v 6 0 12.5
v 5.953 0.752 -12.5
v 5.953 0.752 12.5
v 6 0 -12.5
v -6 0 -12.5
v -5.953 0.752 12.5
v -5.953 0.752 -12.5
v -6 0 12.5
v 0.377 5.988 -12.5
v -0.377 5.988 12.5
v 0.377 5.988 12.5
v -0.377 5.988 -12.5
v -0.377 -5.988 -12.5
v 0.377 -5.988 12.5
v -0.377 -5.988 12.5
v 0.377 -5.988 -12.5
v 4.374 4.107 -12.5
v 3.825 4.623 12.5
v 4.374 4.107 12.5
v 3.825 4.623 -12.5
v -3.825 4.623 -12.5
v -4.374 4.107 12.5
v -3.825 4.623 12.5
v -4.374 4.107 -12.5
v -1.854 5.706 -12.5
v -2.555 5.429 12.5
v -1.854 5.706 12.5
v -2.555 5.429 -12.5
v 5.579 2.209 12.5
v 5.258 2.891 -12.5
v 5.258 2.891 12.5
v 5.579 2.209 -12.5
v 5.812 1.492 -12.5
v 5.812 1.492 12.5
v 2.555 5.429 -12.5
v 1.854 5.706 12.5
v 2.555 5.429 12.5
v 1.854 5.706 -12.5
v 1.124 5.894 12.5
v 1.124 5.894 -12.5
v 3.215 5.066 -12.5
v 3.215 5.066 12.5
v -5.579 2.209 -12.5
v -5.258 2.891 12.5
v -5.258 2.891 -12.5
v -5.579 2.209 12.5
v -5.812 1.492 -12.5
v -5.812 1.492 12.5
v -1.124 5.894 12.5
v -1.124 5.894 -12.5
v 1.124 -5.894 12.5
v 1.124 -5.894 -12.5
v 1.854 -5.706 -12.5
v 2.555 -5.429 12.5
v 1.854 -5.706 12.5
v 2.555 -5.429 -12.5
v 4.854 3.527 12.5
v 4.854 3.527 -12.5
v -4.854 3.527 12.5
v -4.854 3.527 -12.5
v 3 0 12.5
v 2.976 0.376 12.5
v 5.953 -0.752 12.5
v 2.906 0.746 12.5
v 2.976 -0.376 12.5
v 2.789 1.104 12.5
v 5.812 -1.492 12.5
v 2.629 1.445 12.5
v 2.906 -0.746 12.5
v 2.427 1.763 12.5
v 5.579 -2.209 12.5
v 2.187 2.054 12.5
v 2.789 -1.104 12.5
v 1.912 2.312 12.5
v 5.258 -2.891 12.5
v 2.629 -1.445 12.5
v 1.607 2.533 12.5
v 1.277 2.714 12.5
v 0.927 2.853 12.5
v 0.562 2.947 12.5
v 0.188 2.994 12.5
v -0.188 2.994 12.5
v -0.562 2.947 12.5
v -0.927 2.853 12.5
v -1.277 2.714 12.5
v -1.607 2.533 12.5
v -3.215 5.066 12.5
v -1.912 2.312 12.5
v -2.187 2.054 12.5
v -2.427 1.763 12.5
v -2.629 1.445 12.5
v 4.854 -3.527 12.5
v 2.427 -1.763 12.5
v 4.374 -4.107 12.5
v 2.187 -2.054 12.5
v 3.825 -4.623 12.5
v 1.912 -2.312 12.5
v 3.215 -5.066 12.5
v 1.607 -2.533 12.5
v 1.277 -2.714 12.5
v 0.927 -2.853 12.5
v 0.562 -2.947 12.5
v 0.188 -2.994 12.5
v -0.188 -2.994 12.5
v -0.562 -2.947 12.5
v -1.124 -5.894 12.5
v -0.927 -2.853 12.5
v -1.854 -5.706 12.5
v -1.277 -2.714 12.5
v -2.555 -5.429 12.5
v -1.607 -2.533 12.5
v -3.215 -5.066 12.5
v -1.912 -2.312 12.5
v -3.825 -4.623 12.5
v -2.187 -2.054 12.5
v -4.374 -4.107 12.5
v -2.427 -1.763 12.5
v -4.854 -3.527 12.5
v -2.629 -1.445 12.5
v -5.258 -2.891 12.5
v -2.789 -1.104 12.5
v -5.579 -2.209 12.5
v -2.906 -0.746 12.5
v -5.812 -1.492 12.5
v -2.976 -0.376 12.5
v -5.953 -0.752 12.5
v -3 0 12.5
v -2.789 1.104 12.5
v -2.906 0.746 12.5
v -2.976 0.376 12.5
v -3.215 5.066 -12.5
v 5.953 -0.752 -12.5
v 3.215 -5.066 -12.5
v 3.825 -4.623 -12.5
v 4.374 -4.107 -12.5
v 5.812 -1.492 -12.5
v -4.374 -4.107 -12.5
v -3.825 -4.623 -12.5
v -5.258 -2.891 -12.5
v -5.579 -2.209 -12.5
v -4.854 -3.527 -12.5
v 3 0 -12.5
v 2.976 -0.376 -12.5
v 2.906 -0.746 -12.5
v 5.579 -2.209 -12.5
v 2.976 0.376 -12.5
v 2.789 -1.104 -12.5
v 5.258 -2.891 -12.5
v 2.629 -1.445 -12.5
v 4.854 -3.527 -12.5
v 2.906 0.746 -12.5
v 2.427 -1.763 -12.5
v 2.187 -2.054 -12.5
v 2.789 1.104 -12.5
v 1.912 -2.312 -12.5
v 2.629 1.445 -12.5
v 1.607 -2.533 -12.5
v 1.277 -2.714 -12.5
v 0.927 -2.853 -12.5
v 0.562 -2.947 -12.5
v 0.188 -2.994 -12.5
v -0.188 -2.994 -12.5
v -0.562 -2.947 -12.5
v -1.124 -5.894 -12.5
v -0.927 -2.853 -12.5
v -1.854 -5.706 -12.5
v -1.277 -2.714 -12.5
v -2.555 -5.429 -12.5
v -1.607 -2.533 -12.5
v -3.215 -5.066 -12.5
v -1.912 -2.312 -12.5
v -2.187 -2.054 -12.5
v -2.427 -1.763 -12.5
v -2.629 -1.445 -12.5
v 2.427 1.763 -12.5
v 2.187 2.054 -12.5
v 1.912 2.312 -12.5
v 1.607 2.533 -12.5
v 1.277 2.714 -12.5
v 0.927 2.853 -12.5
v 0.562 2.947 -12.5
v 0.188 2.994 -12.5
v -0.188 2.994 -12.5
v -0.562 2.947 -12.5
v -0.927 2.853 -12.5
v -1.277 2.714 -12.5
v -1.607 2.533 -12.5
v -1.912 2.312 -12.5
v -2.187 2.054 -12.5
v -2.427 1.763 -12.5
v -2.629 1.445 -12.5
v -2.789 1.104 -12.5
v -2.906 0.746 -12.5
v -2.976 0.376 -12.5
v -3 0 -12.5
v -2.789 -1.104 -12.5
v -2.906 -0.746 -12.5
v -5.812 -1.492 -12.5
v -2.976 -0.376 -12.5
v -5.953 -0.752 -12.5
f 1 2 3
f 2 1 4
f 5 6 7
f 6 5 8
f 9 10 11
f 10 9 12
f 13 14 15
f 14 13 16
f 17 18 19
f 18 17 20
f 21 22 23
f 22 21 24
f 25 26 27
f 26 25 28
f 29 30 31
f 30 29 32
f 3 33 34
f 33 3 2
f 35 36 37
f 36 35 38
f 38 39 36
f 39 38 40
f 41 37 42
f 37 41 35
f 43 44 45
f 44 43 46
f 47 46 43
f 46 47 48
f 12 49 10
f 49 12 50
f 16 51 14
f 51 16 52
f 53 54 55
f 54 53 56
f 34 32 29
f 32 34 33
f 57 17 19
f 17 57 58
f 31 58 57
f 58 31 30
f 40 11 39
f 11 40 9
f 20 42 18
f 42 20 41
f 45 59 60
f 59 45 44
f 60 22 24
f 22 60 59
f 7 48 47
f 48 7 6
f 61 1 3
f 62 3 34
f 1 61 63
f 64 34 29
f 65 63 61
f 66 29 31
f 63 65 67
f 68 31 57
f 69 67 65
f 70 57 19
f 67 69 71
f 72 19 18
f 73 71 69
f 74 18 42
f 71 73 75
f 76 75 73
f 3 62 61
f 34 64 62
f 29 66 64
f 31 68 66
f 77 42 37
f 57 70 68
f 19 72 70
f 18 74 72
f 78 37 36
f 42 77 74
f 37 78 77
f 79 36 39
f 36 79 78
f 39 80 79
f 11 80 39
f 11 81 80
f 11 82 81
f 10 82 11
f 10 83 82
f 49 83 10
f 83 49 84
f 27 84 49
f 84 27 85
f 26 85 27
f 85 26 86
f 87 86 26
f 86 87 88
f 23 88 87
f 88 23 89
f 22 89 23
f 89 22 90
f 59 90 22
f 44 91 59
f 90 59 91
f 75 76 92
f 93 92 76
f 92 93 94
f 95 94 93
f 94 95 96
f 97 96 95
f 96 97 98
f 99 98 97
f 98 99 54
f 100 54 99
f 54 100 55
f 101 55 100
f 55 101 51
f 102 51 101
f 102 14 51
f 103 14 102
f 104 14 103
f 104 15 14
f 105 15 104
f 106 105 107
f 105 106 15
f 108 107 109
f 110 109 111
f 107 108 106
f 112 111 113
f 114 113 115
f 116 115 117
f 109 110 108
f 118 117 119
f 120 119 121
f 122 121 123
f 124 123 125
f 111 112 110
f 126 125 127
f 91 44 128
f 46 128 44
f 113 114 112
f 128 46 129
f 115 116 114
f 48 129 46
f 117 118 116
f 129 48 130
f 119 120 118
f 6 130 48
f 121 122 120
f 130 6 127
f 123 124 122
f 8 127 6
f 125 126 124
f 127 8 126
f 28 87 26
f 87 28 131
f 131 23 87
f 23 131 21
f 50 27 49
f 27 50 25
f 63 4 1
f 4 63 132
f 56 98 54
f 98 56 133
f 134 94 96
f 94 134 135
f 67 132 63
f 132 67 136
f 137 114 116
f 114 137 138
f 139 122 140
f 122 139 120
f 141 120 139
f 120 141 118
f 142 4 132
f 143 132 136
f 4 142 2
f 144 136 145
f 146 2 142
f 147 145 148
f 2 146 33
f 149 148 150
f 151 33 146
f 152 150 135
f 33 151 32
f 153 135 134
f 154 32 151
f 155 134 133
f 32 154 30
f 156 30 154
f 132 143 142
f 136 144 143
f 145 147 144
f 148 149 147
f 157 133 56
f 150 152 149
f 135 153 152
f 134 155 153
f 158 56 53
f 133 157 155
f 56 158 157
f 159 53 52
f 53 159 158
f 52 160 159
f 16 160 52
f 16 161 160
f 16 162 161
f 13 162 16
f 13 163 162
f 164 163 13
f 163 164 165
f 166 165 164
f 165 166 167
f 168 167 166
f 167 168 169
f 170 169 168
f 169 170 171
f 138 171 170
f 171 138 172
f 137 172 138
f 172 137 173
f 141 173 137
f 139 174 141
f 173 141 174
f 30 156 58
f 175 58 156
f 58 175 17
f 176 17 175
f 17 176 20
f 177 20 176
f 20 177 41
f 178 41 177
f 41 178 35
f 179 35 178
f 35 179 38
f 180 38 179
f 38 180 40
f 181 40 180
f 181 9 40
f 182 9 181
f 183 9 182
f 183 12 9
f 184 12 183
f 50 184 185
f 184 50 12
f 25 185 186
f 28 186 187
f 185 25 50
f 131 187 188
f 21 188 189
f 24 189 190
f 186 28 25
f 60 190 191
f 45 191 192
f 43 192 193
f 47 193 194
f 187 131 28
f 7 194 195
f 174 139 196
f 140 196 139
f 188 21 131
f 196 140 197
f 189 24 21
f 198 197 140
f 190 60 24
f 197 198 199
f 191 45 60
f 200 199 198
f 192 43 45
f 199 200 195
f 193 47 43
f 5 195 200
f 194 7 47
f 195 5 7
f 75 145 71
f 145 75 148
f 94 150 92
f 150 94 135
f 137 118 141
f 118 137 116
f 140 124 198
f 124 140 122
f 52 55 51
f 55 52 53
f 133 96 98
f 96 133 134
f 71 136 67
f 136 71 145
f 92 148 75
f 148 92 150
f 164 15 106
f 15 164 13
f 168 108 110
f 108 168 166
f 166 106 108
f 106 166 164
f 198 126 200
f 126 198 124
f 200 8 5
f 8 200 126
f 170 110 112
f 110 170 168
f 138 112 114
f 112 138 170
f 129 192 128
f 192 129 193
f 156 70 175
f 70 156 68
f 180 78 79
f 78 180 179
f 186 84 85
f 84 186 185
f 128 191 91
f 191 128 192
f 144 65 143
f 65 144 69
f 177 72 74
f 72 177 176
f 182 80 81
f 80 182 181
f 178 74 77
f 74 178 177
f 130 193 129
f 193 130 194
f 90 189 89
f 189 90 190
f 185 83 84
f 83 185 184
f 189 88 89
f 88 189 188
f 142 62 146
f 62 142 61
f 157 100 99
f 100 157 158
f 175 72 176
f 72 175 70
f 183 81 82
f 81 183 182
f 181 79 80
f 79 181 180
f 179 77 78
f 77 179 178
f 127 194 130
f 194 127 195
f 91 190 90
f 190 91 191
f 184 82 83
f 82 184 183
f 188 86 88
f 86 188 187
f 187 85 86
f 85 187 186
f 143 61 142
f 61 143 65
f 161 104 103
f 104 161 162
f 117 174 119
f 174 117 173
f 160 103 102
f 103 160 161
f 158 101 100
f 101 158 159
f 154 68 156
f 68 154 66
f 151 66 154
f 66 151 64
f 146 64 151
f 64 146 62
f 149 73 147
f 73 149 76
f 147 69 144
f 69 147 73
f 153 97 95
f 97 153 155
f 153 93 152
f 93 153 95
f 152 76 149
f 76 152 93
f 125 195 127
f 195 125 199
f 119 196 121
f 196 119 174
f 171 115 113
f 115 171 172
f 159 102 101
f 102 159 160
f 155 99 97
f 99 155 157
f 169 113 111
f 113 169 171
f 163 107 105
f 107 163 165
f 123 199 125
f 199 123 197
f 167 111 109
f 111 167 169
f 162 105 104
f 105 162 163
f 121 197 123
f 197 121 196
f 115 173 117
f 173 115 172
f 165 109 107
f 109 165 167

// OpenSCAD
$fn = 50;


difference() {
	union() {
		translate(v = [0, 0, -12.5000000000]) {
			cylinder(h = 25, r = 6.0000000000);
		}
	}
	union() {
		translate(v = [0, 0, -100.0000000000]) {
			cylinder(h = 200, r = 3);
		}
	}
}
